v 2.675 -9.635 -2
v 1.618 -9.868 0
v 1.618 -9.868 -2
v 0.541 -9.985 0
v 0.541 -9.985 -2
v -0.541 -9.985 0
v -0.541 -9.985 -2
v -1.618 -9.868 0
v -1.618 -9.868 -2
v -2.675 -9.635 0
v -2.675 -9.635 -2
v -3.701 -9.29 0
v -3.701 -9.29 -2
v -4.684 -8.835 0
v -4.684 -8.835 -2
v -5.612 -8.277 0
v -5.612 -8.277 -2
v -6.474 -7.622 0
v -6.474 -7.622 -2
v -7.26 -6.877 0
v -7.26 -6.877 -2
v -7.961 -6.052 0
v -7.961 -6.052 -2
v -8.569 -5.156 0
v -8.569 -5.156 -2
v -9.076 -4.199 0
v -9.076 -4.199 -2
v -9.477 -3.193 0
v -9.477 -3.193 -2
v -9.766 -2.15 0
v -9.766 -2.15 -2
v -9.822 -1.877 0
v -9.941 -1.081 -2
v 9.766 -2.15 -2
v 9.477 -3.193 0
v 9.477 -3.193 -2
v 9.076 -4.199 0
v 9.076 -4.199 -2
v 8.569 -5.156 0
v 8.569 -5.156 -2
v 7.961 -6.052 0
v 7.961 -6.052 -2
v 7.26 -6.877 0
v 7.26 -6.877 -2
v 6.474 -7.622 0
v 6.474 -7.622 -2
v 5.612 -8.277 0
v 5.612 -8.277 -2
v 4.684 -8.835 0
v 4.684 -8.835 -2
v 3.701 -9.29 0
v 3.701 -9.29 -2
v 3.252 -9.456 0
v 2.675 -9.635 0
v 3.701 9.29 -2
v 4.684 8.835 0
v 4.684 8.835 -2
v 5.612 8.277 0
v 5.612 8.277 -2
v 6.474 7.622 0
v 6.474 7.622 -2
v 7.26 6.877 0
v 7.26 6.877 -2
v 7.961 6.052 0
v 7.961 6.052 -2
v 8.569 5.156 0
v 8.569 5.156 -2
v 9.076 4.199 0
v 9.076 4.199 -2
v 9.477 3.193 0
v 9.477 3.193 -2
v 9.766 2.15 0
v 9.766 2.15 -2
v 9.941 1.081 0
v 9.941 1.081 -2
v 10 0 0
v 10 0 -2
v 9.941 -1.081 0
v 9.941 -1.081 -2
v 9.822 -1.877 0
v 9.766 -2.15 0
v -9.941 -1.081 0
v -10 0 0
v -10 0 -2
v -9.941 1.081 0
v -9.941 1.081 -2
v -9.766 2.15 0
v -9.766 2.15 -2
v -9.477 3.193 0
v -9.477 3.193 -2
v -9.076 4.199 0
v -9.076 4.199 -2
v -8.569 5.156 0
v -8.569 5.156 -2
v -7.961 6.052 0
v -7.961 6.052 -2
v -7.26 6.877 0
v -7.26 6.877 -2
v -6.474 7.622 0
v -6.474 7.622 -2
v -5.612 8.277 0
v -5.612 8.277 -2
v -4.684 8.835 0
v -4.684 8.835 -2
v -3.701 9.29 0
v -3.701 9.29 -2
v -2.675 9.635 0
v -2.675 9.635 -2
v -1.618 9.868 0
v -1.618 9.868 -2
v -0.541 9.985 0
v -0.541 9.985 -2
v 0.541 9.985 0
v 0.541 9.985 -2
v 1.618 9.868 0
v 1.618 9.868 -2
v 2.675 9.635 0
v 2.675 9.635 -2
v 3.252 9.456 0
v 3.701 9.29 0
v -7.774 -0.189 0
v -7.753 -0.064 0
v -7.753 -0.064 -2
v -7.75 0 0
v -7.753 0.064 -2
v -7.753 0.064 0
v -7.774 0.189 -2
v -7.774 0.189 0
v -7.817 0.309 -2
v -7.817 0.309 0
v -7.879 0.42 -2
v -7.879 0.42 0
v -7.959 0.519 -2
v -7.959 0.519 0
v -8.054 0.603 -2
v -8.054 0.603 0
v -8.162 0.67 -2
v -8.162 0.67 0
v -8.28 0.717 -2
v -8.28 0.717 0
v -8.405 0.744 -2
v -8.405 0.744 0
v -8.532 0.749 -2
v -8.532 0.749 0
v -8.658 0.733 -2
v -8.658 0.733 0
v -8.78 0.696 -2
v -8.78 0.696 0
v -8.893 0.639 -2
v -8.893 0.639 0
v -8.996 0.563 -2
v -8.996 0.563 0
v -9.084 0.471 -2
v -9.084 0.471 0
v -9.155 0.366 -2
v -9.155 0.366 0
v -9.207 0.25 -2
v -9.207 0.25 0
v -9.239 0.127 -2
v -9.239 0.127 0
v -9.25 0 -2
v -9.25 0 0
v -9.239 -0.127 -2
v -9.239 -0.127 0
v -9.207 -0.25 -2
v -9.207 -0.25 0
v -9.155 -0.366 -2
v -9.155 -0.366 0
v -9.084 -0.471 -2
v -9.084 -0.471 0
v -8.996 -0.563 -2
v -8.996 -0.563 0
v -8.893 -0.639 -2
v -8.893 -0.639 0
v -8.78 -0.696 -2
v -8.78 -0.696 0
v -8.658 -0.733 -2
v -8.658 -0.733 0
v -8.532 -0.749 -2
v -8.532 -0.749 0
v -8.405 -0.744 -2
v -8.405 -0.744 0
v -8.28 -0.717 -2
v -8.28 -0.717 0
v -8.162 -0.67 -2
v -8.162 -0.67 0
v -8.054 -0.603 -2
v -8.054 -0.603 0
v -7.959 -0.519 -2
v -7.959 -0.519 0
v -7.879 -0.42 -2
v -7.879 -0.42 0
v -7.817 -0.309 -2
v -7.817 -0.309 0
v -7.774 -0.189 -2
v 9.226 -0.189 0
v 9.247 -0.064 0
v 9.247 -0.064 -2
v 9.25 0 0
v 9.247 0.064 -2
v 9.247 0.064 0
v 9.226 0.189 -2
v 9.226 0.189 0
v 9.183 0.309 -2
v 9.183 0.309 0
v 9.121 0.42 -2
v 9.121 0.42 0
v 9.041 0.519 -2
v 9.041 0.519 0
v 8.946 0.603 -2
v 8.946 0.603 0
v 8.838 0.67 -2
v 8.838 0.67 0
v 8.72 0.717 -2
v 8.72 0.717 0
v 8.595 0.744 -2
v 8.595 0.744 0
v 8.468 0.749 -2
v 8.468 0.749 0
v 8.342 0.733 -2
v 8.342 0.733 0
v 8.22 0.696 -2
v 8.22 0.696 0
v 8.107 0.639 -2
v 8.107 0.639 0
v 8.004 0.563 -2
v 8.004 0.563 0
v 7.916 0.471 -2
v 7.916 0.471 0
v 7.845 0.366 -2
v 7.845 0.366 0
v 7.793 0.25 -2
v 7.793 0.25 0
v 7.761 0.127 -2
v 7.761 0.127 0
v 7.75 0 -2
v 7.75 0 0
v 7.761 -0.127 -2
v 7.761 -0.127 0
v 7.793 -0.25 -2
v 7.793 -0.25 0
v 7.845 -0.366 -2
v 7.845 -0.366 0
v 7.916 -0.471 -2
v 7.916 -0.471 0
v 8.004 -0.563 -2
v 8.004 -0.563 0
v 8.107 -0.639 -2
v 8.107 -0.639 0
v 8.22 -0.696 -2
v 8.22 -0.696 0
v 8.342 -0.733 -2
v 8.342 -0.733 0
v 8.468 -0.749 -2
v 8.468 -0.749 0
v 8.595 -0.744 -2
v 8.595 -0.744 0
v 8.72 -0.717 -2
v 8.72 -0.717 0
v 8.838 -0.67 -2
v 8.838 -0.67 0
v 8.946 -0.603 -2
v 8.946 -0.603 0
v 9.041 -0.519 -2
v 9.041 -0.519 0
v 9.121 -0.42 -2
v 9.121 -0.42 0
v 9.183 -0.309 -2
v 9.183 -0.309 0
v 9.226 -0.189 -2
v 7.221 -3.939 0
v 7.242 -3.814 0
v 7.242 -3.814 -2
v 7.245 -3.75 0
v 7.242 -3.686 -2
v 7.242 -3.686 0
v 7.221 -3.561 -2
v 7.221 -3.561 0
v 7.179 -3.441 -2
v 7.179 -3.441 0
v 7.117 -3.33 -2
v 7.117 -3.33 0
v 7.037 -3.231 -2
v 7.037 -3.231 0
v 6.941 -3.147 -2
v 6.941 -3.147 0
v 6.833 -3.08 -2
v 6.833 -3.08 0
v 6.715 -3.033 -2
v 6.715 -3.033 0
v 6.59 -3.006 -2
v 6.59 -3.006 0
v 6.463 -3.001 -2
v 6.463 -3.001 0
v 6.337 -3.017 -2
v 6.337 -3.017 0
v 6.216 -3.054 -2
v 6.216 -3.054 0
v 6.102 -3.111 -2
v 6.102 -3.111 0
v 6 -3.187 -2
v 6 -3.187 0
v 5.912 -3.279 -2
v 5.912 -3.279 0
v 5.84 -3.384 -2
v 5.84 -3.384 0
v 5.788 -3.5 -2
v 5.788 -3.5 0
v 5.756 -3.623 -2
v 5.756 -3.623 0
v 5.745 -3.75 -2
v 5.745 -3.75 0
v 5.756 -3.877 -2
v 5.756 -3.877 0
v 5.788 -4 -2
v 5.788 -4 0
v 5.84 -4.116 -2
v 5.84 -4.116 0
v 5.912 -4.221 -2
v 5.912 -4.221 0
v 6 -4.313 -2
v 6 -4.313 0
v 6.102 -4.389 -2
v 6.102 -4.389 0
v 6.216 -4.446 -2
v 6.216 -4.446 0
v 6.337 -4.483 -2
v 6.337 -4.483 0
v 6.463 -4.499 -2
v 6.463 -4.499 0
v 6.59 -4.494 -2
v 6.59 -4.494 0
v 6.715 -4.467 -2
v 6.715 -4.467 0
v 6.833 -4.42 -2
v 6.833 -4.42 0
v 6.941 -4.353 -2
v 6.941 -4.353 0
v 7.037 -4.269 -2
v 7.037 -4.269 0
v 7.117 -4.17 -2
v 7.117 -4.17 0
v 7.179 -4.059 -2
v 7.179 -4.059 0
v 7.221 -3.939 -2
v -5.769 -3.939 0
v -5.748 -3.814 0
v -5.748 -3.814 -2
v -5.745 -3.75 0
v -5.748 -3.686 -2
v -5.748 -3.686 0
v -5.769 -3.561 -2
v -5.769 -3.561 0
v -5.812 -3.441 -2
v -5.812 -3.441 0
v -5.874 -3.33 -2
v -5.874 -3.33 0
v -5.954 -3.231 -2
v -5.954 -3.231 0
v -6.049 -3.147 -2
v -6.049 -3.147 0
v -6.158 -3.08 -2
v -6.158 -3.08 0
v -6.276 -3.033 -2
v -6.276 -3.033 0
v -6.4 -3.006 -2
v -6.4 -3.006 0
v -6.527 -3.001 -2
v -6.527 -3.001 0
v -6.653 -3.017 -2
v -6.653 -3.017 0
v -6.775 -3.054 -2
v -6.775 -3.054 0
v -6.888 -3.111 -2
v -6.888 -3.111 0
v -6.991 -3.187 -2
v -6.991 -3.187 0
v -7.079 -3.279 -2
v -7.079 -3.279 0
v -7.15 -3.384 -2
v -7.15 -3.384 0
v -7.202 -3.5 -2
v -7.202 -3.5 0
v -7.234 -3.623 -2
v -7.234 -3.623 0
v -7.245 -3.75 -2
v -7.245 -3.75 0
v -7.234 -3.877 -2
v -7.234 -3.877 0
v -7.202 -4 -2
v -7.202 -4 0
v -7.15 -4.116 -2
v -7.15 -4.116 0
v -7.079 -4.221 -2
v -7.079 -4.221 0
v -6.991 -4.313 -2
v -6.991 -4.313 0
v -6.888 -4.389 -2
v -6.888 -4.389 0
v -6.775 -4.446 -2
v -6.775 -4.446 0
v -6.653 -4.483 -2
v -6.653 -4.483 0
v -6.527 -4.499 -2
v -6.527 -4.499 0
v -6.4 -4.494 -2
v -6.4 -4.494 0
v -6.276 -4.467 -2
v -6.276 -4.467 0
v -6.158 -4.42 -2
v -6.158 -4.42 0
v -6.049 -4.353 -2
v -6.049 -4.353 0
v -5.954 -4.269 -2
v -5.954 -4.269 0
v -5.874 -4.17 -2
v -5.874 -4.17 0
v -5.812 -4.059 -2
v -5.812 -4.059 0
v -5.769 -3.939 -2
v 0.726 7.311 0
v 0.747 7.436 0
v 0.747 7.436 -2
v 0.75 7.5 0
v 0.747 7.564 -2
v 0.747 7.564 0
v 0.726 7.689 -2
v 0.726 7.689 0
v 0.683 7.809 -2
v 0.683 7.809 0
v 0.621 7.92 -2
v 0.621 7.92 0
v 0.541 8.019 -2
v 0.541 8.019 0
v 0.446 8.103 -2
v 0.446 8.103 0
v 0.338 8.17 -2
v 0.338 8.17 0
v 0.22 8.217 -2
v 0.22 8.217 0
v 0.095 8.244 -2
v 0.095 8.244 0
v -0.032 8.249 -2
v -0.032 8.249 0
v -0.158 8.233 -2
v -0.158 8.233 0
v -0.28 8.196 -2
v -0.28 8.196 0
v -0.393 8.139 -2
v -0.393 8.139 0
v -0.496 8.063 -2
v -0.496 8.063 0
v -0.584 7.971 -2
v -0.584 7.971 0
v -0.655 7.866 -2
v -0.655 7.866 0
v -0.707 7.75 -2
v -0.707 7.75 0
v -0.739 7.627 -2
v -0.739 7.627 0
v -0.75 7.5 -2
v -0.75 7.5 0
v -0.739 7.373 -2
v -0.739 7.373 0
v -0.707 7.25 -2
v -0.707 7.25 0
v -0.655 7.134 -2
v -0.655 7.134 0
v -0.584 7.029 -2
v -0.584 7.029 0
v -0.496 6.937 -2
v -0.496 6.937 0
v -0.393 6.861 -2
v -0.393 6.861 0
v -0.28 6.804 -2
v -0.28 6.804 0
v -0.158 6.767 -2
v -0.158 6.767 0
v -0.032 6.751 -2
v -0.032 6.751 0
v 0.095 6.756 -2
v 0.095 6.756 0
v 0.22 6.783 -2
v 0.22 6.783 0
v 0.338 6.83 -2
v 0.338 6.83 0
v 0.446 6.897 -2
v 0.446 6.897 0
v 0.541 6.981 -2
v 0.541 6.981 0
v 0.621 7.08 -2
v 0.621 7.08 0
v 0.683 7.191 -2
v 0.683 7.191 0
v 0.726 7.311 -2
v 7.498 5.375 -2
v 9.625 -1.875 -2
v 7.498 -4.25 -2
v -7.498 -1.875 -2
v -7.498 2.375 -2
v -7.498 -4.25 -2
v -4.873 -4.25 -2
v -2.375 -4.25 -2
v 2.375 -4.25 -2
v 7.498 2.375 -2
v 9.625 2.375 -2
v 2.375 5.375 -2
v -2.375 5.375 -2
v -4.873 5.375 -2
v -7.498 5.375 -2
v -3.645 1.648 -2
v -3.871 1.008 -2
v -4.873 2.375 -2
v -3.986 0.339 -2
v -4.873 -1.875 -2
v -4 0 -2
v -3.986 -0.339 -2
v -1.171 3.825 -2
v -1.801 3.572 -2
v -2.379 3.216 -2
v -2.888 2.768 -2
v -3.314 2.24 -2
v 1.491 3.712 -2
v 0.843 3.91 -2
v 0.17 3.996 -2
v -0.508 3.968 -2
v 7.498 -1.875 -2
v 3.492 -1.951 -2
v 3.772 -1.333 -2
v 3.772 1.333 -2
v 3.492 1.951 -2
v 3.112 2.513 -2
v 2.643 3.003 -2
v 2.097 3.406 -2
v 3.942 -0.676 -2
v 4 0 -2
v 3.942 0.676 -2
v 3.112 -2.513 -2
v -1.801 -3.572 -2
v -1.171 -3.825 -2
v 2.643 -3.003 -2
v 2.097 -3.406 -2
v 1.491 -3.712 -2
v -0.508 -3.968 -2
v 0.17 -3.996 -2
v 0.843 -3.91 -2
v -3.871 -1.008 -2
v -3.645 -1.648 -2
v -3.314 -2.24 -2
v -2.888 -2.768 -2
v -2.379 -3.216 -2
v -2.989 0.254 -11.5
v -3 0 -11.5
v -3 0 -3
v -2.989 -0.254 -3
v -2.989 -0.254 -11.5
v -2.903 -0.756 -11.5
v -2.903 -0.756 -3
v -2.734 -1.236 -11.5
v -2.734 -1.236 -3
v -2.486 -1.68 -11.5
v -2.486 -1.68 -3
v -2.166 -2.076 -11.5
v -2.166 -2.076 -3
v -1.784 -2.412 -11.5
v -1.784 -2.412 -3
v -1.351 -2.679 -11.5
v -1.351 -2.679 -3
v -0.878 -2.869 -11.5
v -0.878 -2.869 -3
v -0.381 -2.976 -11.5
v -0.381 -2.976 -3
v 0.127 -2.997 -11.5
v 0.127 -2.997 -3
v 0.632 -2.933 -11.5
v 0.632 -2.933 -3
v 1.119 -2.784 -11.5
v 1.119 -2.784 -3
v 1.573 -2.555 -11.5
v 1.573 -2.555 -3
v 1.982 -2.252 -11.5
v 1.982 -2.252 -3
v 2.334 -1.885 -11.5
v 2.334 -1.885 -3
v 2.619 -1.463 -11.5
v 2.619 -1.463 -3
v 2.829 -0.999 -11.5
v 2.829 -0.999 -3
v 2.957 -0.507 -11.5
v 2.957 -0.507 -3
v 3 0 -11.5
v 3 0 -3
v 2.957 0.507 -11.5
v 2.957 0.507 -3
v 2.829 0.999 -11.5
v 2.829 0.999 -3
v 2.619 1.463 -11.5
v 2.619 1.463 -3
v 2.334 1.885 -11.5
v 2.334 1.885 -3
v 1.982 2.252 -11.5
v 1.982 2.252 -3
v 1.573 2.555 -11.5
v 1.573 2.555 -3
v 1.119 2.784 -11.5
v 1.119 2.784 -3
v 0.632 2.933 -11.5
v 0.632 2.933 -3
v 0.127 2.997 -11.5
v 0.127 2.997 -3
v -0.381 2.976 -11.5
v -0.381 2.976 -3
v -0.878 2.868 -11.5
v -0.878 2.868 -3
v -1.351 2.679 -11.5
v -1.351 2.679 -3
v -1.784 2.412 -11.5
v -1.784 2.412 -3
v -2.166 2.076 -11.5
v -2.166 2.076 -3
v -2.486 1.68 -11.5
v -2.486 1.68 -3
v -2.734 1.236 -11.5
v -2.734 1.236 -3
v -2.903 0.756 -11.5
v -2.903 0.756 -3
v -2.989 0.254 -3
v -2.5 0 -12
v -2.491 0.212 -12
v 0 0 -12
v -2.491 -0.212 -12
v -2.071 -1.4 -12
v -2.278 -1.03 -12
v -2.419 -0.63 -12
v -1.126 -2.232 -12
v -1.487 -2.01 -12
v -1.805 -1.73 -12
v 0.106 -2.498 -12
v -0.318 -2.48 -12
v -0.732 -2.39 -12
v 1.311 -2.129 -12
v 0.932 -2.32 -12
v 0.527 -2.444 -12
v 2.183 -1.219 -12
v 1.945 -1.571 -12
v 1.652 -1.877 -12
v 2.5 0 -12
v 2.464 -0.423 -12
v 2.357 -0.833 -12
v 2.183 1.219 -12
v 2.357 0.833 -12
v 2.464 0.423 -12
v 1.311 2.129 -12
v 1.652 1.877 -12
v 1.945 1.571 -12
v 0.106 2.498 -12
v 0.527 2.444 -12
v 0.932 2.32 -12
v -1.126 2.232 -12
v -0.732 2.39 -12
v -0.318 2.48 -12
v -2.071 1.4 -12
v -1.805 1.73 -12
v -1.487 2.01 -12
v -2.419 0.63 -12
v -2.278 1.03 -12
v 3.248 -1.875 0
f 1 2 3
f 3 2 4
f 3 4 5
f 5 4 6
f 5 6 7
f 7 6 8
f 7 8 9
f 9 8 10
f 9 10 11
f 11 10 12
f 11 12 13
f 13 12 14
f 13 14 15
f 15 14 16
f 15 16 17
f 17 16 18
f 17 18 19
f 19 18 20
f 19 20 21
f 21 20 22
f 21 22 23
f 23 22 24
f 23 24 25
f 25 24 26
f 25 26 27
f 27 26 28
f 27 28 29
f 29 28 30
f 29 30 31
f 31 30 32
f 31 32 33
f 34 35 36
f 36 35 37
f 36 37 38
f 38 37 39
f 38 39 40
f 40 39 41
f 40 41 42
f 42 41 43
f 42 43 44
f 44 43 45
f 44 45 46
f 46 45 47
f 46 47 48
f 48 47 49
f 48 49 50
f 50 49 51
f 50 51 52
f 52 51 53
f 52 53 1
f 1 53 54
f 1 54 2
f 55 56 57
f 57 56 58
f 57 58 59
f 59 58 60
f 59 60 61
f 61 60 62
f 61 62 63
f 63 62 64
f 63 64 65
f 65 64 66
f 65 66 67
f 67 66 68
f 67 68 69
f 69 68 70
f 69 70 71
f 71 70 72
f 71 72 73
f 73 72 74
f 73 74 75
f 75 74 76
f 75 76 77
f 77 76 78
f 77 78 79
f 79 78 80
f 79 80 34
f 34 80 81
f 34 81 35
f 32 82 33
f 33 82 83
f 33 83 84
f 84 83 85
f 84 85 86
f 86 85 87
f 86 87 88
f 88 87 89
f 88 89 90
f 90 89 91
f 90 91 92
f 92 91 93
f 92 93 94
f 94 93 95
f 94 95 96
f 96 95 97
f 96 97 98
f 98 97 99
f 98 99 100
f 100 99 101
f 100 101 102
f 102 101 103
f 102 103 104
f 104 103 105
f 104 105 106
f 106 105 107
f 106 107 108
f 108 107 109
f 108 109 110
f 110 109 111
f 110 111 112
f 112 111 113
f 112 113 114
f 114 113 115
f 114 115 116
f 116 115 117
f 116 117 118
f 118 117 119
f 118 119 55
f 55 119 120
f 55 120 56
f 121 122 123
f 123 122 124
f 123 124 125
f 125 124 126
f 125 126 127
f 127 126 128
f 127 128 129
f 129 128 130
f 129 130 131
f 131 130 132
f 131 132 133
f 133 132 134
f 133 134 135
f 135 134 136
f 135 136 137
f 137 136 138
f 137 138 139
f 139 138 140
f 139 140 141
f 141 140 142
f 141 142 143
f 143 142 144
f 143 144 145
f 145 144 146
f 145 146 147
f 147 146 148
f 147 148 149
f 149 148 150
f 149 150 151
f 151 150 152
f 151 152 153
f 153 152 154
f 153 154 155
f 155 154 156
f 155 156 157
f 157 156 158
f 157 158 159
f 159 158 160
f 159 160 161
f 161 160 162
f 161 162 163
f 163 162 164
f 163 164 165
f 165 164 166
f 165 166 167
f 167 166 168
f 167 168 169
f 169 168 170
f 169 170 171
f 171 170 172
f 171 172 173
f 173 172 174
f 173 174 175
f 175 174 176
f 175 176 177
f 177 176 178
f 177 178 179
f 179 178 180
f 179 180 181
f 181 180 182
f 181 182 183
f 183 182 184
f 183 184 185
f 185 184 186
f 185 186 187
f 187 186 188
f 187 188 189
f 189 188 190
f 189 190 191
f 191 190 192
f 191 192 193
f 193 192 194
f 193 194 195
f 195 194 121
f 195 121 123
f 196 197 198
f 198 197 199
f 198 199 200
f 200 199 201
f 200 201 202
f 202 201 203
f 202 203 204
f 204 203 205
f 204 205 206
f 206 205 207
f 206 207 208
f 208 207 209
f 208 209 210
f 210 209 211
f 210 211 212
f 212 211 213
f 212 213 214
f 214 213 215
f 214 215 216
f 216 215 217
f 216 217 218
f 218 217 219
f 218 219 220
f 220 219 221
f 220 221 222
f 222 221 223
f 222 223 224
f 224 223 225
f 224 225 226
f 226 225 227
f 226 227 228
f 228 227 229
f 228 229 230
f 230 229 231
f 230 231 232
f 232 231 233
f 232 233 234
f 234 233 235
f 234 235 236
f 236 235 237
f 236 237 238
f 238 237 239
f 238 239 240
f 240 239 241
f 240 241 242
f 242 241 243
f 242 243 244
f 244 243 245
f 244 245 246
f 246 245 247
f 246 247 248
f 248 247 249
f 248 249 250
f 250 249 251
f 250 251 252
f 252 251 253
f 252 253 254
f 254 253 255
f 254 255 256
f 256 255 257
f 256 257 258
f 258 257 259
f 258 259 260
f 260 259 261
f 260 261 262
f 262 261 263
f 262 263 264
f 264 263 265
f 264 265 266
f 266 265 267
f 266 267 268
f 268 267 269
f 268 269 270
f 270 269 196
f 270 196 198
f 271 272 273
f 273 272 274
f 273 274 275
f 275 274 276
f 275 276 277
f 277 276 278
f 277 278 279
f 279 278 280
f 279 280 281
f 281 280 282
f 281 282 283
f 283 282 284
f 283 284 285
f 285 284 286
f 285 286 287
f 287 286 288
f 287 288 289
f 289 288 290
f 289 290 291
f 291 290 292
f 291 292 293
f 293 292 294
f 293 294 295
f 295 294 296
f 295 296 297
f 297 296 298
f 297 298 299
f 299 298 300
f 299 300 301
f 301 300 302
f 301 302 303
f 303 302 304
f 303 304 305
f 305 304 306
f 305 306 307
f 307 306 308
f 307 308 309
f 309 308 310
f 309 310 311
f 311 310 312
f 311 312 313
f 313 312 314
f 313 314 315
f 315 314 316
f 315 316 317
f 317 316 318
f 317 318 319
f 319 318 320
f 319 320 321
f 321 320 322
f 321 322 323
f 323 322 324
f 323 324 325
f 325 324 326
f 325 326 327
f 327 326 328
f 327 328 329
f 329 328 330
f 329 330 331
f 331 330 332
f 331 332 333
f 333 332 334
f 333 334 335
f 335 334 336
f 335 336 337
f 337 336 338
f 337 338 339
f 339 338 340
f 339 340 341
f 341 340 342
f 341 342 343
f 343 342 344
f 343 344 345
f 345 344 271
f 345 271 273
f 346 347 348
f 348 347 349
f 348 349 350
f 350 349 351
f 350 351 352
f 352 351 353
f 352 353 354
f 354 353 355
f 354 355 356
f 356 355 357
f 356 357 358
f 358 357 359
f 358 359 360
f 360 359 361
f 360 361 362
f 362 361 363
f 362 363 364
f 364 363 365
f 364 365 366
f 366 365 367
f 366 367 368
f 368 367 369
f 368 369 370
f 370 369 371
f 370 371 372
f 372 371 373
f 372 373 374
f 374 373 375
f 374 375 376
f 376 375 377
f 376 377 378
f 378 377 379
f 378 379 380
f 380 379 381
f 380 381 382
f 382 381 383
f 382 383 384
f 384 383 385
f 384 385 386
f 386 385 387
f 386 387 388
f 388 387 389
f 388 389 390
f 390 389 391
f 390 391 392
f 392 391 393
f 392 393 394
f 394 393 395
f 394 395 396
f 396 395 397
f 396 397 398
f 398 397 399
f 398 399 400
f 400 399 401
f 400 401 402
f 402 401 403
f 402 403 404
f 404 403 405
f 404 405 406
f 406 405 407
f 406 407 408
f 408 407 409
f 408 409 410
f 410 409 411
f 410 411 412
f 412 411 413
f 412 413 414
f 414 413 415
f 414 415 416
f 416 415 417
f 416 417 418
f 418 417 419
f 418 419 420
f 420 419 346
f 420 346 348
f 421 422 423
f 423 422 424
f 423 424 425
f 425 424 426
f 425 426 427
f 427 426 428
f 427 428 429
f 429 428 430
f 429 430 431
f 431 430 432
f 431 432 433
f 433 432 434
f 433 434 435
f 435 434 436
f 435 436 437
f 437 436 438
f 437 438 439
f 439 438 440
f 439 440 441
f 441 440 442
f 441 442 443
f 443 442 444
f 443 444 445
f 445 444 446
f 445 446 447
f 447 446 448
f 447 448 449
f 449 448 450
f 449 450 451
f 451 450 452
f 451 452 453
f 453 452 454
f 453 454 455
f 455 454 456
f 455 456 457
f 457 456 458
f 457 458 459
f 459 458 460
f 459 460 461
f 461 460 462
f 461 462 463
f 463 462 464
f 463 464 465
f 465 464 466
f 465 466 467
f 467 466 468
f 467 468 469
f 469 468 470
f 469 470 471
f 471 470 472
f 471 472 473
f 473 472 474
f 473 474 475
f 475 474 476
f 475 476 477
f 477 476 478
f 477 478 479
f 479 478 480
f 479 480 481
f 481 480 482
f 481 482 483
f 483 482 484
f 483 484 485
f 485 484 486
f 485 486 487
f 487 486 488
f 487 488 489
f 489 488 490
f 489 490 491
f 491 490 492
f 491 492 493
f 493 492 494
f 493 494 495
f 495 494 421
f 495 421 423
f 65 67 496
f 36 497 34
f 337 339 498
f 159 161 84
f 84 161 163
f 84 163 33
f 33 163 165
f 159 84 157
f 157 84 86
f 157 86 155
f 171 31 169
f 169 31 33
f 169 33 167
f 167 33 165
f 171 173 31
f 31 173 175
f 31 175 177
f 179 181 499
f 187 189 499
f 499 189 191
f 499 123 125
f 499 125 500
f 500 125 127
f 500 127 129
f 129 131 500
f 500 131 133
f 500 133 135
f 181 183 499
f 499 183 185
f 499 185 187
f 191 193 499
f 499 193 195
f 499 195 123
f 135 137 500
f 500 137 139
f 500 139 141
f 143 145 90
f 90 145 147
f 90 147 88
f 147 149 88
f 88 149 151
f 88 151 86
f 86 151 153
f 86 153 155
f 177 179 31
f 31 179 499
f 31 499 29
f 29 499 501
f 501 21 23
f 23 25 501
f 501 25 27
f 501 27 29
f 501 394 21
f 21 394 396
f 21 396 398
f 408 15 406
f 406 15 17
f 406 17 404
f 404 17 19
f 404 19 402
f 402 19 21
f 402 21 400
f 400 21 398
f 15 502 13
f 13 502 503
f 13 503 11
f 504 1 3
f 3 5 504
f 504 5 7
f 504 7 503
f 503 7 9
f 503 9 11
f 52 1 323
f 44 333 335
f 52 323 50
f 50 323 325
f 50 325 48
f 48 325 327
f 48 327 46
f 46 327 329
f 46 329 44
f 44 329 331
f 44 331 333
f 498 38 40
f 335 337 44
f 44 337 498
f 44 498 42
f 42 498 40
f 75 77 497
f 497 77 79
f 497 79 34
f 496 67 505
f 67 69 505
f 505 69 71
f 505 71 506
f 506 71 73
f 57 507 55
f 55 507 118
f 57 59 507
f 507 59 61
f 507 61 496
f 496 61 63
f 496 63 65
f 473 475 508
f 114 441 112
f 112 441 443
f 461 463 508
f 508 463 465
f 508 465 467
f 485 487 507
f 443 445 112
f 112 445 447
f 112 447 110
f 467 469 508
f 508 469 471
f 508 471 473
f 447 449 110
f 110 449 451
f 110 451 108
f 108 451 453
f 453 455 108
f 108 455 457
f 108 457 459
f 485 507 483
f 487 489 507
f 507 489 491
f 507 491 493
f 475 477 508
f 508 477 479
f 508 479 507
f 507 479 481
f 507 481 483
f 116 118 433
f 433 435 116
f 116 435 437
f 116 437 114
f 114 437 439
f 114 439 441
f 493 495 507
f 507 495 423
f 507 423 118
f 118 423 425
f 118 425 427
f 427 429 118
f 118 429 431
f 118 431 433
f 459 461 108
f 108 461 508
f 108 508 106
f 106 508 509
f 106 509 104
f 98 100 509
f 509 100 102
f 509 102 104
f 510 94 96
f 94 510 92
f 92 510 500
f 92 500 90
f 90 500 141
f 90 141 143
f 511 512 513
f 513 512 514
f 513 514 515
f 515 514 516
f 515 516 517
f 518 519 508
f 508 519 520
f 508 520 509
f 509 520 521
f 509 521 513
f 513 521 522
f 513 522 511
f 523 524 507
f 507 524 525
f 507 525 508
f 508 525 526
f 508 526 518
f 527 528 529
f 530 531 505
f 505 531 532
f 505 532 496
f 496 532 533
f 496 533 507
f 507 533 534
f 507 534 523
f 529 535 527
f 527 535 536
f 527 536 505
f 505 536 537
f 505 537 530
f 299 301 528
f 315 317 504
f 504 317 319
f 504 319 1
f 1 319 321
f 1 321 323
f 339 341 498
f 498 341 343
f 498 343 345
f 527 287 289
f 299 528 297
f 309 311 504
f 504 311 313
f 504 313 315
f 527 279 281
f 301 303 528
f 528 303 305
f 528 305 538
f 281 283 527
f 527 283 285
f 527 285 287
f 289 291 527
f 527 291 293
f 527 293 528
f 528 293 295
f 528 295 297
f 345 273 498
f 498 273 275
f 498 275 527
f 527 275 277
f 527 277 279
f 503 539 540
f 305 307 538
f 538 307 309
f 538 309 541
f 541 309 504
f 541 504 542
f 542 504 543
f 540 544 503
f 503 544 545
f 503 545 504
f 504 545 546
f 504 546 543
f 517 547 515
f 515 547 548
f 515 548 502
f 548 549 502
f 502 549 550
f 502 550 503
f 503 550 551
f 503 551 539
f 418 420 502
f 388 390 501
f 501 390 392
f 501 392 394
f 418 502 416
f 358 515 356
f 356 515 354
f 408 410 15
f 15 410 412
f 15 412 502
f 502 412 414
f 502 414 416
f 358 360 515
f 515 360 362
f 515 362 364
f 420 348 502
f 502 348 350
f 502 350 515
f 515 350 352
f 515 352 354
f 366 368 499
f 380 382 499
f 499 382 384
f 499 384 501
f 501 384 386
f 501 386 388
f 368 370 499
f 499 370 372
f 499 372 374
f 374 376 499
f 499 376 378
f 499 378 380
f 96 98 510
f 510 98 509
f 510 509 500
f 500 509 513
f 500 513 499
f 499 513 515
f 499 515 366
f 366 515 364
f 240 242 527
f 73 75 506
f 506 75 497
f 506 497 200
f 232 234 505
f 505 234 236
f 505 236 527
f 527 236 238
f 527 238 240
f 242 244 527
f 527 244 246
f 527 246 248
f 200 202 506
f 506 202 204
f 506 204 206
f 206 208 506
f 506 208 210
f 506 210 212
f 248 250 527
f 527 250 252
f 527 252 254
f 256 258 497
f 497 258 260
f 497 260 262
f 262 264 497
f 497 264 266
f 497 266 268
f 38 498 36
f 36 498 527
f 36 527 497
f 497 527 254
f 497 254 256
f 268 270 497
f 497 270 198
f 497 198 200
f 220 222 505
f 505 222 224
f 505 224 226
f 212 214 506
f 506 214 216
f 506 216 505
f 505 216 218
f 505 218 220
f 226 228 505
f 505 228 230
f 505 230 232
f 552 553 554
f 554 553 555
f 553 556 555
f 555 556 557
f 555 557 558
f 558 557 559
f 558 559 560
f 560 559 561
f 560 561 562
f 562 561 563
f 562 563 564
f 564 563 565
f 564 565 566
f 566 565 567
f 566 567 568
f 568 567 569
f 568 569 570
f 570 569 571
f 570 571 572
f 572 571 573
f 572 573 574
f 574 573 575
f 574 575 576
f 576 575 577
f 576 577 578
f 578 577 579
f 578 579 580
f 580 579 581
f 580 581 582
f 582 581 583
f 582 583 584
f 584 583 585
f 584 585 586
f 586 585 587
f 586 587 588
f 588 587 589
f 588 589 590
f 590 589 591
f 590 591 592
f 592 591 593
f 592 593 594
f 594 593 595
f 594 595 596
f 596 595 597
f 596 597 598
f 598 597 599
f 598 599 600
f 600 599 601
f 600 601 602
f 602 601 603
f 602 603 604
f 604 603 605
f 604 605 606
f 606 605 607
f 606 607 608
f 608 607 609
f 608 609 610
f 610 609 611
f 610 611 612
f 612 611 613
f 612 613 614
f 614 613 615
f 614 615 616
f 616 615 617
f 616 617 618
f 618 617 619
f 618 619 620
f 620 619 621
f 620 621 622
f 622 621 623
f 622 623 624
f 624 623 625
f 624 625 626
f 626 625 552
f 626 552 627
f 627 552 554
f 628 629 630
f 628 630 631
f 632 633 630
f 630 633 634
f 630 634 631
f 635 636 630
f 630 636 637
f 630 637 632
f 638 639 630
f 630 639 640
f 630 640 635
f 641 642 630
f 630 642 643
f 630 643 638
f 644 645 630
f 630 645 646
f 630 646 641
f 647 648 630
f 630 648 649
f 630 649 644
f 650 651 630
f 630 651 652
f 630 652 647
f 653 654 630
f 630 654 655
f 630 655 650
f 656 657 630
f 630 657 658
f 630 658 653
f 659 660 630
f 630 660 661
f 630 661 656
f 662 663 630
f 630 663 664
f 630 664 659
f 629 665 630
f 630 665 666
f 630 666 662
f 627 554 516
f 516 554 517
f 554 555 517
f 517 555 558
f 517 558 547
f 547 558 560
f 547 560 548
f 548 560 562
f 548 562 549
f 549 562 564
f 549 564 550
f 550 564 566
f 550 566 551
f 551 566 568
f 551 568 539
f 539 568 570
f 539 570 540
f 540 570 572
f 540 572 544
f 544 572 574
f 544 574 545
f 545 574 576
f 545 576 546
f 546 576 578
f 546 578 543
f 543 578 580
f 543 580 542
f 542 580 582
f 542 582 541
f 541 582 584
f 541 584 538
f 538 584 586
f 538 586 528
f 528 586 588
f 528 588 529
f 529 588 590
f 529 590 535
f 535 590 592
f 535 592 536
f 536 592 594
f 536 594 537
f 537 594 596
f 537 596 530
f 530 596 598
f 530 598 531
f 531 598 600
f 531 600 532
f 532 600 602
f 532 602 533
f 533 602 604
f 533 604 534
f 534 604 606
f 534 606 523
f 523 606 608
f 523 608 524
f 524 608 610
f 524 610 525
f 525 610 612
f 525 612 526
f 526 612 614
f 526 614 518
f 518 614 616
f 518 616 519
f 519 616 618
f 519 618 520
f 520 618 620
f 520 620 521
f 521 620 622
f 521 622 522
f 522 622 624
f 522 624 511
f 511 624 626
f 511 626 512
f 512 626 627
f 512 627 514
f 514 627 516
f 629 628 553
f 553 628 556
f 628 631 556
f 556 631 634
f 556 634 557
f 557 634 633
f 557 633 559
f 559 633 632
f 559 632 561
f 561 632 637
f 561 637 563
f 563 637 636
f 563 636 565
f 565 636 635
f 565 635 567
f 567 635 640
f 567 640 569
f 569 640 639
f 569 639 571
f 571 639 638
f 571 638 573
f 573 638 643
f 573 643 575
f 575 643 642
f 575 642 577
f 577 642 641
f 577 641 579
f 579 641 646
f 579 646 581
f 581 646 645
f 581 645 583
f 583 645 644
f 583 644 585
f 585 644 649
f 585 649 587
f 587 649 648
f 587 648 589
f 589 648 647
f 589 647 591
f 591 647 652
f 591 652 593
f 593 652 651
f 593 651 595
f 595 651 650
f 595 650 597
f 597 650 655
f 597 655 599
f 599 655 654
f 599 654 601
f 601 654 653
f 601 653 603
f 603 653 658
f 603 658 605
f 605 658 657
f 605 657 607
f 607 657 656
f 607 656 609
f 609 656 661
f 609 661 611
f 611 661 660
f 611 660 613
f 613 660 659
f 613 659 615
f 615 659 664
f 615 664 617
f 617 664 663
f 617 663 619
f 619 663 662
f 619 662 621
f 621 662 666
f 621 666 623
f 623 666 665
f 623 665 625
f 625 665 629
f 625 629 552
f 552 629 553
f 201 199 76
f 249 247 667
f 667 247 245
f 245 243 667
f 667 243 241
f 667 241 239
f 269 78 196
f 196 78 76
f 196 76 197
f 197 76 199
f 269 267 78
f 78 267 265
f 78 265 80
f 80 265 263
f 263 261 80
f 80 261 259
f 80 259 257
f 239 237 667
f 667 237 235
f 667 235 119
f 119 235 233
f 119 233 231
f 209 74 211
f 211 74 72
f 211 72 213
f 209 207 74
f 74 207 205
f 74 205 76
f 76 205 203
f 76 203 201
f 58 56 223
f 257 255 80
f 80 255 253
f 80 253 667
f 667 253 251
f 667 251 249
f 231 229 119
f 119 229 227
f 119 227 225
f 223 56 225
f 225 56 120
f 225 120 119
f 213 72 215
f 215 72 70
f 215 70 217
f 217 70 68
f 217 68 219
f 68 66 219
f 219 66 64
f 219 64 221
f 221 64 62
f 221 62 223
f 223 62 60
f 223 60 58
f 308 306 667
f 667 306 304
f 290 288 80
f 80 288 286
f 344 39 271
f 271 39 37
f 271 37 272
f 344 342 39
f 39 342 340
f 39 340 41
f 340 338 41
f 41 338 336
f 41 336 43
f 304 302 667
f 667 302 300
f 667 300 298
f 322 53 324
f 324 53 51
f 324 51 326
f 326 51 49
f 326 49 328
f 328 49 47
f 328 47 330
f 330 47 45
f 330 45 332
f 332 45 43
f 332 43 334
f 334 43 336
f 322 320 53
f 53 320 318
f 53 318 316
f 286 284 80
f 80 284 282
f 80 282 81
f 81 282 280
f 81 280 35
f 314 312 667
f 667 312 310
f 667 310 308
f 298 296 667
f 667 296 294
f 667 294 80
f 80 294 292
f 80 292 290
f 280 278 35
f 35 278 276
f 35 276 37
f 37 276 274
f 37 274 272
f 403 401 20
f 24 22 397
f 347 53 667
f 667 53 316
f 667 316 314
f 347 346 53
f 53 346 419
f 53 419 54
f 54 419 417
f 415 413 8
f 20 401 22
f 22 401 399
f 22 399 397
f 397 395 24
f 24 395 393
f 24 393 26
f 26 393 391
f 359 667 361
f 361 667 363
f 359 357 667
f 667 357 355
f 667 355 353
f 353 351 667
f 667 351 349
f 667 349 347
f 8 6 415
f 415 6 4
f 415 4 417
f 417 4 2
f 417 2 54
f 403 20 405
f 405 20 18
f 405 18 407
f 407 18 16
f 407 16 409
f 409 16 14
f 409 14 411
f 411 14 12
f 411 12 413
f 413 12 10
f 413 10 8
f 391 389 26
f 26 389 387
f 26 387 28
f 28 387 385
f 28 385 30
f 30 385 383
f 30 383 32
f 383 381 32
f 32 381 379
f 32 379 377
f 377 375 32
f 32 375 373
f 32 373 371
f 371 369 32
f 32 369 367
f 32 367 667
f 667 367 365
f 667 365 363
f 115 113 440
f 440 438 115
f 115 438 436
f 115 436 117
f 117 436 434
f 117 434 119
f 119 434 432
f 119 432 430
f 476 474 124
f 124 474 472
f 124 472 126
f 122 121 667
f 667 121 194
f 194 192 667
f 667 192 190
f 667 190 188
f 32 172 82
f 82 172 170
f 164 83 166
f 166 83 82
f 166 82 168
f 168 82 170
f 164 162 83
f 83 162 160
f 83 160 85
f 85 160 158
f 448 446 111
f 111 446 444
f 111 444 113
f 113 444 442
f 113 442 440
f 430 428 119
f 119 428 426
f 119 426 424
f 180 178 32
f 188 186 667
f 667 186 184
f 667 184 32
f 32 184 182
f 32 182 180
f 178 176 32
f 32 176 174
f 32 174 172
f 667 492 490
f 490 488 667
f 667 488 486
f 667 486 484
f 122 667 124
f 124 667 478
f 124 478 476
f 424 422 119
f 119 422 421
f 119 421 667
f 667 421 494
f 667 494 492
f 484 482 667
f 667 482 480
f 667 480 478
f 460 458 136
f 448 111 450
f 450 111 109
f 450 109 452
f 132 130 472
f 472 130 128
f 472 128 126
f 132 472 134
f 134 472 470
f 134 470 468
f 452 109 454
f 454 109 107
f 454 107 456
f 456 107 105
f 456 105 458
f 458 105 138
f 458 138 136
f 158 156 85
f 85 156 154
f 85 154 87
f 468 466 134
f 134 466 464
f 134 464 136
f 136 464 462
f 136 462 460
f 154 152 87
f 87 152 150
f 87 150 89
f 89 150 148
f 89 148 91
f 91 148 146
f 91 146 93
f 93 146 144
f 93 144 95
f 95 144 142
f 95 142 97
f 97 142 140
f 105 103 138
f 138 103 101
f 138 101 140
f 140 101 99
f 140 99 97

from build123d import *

# Parameters (mm, degrees)
SKETCH1_R           = 10
SKETCH1_R_2         = 5.5
BOSS_EXTRUDE1_DEPTH = 2
SKETCH3_R           = 3
BOSS_EXTRUDE2_DEPTH = 12
SKETCH4_R           = 10
SKETCH4_R_2         = 3
BOSS_EXTRUDE3_DEPTH = 2
CHAMFER2_SIZE       = 1
CHAMFER4_SIZE       = 0.5
CUT_EXTRUDE1_REACH  = 6
SKETCH5_R           = 0.75
SKETCH6_R           = 6.25
SKETCH6_R_2         = 5.5
BOSS_EXTRUDE4_DEPTH = 26
CUT_EXTRUDE2_REACH  = 32
SKETCH7_R           = 0.75
SKETCH9_R           = 17.358770913
CUT_EXTRUDE3_DEPTH  = 28


with BuildPart() as part:
    # Sketch1 → Boss-Extrude1 (new body)
    with BuildSketch(Plane.XY):
        Circle(SKETCH1_R)
        Circle(SKETCH1_R_2, mode=Mode.SUBTRACT)
    extrude(amount=BOSS_EXTRUDE1_DEPTH)



with BuildPart() as body_2:
    # Sketch3 → Boss-Extrude2 (new body)
    with BuildSketch(Plane(origin=(0, 0, 0), x_dir=(-1, 0, 0), z_dir=(0, 0, -1))):
        Circle(SKETCH3_R)
    extrude(amount=BOSS_EXTRUDE2_DEPTH)


with BuildPart() as part_1:
    add(part.part)

    add(body_2.part)  # Boss-Extrude3 merges body 2
    # Sketch4 → Boss-Extrude3 (add)
    with BuildSketch(Plane(origin=(0, 0, 0), x_dir=(-1, 0, 0), z_dir=(0, 0, -1))):
        Circle(SKETCH4_R)
        Circle(SKETCH4_R_2, mode=Mode.SUBTRACT)
    extrude(amount=BOSS_EXTRUDE3_DEPTH)

    # Chamfer2
    chamfer2_edges = [part_1.edges().sort_by_distance(p)[0] for p in [
        (3, 0, -2),
    ]]
    chamfer(chamfer2_edges, length=CHAMFER2_SIZE)

    # Chamfer4
    chamfer4_edges = [part_1.edges().sort_by_distance(p)[0] for p in [
        (3, 0, -12),
    ]]
    chamfer(chamfer4_edges, length=CHAMFER4_SIZE)

    # Sketch5 → Cut-Extrude1 (cut, up to next)
    with BuildSketch(Plane(origin=(0, 0, -2), x_dir=(-1, 0, 0), z_dir=(0, 0, -1)), mode=Mode.PRIVATE) as cut_extrude1_sk1:
        with Locations((-8.5, 0)):
            Circle(SKETCH5_R)
    cut_extrude1_tool1 = extrude(cut_extrude1_sk1.sketch, amount=-CUT_EXTRUDE1_REACH, mode=Mode.PRIVATE) & part_1.part
    add(cut_extrude1_tool1.solids().sort_by_distance((8.5, 0, -2))[0], mode=Mode.SUBTRACT)
    # Sketch5 → Cut-Extrude1 (cut, up to next)
    with BuildSketch(Plane(origin=(0, 0, -2), x_dir=(-1, 0, 0), z_dir=(0, 0, -1)), mode=Mode.PRIVATE) as cut_extrude1_sk2:
        with Locations((8.5, 0)):
            Circle(SKETCH5_R)
    cut_extrude1_tool2 = extrude(cut_extrude1_sk2.sketch, amount=-CUT_EXTRUDE1_REACH, mode=Mode.PRIVATE) & part_1.part
    add(cut_extrude1_tool2.solids().sort_by_distance((-8.5, 0, -2))[0], mode=Mode.SUBTRACT)

    # Sketch6 → Boss-Extrude4 (add)
    with BuildSketch(Plane.XY.offset(2)):
        Circle(SKETCH6_R)
        Circle(SKETCH6_R_2, mode=Mode.SUBTRACT)
    extrude(amount=BOSS_EXTRUDE4_DEPTH)

    # Sketch7 → Cut-Extrude2 (cut, up to next)
    with BuildSketch(Plane(origin=(0, 0, -2), x_dir=(-1, 0, 0), z_dir=(0, 0, -1)), mode=Mode.PRIVATE) as cut_extrude2_sk1:
        with Locations((0, 7.5)):
            Circle(SKETCH7_R)
    cut_extrude2_tool1 = extrude(cut_extrude2_sk1.sketch, amount=-CUT_EXTRUDE2_REACH, mode=Mode.PRIVATE) & part_1.part
    add(cut_extrude2_tool1.solids().sort_by_distance((0, 7.5, -2))[0], mode=Mode.SUBTRACT)
    # Sketch7 → Cut-Extrude2 (cut, up to next)
    with BuildSketch(Plane(origin=(0, 0, -2), x_dir=(-1, 0, 0), z_dir=(0, 0, -1)), mode=Mode.PRIVATE) as cut_extrude2_sk2:
        with Locations((6.495190528, -3.75)):
            Circle(SKETCH7_R)
    cut_extrude2_tool2 = extrude(cut_extrude2_sk2.sketch, amount=-CUT_EXTRUDE2_REACH, mode=Mode.PRIVATE) & part_1.part
    add(cut_extrude2_tool2.solids().sort_by_distance((-6.495191, -3.75, -2))[0], mode=Mode.SUBTRACT)
    # Sketch7 → Cut-Extrude2 (cut, up to next)
    with BuildSketch(Plane(origin=(0, 0, -2), x_dir=(-1, 0, 0), z_dir=(0, 0, -1)), mode=Mode.PRIVATE) as cut_extrude2_sk3:
        with Locations((-6.495190528, -3.75)):
            Circle(SKETCH7_R)
    cut_extrude2_tool3 = extrude(cut_extrude2_sk3.sketch, amount=-CUT_EXTRUDE2_REACH, mode=Mode.PRIVATE) & part_1.part
    add(cut_extrude2_tool3.solids().sort_by_distance((6.495191, -3.75, -2))[0], mode=Mode.SUBTRACT)

    # Sketch9 → Cut-Extrude3 (cut)
    with BuildSketch(Plane.XY.offset(28)):
        Circle(SKETCH9_R)
    extrude(amount=-CUT_EXTRUDE3_DEPTH, mode=Mode.SUBTRACT)


solid = part_1.part
